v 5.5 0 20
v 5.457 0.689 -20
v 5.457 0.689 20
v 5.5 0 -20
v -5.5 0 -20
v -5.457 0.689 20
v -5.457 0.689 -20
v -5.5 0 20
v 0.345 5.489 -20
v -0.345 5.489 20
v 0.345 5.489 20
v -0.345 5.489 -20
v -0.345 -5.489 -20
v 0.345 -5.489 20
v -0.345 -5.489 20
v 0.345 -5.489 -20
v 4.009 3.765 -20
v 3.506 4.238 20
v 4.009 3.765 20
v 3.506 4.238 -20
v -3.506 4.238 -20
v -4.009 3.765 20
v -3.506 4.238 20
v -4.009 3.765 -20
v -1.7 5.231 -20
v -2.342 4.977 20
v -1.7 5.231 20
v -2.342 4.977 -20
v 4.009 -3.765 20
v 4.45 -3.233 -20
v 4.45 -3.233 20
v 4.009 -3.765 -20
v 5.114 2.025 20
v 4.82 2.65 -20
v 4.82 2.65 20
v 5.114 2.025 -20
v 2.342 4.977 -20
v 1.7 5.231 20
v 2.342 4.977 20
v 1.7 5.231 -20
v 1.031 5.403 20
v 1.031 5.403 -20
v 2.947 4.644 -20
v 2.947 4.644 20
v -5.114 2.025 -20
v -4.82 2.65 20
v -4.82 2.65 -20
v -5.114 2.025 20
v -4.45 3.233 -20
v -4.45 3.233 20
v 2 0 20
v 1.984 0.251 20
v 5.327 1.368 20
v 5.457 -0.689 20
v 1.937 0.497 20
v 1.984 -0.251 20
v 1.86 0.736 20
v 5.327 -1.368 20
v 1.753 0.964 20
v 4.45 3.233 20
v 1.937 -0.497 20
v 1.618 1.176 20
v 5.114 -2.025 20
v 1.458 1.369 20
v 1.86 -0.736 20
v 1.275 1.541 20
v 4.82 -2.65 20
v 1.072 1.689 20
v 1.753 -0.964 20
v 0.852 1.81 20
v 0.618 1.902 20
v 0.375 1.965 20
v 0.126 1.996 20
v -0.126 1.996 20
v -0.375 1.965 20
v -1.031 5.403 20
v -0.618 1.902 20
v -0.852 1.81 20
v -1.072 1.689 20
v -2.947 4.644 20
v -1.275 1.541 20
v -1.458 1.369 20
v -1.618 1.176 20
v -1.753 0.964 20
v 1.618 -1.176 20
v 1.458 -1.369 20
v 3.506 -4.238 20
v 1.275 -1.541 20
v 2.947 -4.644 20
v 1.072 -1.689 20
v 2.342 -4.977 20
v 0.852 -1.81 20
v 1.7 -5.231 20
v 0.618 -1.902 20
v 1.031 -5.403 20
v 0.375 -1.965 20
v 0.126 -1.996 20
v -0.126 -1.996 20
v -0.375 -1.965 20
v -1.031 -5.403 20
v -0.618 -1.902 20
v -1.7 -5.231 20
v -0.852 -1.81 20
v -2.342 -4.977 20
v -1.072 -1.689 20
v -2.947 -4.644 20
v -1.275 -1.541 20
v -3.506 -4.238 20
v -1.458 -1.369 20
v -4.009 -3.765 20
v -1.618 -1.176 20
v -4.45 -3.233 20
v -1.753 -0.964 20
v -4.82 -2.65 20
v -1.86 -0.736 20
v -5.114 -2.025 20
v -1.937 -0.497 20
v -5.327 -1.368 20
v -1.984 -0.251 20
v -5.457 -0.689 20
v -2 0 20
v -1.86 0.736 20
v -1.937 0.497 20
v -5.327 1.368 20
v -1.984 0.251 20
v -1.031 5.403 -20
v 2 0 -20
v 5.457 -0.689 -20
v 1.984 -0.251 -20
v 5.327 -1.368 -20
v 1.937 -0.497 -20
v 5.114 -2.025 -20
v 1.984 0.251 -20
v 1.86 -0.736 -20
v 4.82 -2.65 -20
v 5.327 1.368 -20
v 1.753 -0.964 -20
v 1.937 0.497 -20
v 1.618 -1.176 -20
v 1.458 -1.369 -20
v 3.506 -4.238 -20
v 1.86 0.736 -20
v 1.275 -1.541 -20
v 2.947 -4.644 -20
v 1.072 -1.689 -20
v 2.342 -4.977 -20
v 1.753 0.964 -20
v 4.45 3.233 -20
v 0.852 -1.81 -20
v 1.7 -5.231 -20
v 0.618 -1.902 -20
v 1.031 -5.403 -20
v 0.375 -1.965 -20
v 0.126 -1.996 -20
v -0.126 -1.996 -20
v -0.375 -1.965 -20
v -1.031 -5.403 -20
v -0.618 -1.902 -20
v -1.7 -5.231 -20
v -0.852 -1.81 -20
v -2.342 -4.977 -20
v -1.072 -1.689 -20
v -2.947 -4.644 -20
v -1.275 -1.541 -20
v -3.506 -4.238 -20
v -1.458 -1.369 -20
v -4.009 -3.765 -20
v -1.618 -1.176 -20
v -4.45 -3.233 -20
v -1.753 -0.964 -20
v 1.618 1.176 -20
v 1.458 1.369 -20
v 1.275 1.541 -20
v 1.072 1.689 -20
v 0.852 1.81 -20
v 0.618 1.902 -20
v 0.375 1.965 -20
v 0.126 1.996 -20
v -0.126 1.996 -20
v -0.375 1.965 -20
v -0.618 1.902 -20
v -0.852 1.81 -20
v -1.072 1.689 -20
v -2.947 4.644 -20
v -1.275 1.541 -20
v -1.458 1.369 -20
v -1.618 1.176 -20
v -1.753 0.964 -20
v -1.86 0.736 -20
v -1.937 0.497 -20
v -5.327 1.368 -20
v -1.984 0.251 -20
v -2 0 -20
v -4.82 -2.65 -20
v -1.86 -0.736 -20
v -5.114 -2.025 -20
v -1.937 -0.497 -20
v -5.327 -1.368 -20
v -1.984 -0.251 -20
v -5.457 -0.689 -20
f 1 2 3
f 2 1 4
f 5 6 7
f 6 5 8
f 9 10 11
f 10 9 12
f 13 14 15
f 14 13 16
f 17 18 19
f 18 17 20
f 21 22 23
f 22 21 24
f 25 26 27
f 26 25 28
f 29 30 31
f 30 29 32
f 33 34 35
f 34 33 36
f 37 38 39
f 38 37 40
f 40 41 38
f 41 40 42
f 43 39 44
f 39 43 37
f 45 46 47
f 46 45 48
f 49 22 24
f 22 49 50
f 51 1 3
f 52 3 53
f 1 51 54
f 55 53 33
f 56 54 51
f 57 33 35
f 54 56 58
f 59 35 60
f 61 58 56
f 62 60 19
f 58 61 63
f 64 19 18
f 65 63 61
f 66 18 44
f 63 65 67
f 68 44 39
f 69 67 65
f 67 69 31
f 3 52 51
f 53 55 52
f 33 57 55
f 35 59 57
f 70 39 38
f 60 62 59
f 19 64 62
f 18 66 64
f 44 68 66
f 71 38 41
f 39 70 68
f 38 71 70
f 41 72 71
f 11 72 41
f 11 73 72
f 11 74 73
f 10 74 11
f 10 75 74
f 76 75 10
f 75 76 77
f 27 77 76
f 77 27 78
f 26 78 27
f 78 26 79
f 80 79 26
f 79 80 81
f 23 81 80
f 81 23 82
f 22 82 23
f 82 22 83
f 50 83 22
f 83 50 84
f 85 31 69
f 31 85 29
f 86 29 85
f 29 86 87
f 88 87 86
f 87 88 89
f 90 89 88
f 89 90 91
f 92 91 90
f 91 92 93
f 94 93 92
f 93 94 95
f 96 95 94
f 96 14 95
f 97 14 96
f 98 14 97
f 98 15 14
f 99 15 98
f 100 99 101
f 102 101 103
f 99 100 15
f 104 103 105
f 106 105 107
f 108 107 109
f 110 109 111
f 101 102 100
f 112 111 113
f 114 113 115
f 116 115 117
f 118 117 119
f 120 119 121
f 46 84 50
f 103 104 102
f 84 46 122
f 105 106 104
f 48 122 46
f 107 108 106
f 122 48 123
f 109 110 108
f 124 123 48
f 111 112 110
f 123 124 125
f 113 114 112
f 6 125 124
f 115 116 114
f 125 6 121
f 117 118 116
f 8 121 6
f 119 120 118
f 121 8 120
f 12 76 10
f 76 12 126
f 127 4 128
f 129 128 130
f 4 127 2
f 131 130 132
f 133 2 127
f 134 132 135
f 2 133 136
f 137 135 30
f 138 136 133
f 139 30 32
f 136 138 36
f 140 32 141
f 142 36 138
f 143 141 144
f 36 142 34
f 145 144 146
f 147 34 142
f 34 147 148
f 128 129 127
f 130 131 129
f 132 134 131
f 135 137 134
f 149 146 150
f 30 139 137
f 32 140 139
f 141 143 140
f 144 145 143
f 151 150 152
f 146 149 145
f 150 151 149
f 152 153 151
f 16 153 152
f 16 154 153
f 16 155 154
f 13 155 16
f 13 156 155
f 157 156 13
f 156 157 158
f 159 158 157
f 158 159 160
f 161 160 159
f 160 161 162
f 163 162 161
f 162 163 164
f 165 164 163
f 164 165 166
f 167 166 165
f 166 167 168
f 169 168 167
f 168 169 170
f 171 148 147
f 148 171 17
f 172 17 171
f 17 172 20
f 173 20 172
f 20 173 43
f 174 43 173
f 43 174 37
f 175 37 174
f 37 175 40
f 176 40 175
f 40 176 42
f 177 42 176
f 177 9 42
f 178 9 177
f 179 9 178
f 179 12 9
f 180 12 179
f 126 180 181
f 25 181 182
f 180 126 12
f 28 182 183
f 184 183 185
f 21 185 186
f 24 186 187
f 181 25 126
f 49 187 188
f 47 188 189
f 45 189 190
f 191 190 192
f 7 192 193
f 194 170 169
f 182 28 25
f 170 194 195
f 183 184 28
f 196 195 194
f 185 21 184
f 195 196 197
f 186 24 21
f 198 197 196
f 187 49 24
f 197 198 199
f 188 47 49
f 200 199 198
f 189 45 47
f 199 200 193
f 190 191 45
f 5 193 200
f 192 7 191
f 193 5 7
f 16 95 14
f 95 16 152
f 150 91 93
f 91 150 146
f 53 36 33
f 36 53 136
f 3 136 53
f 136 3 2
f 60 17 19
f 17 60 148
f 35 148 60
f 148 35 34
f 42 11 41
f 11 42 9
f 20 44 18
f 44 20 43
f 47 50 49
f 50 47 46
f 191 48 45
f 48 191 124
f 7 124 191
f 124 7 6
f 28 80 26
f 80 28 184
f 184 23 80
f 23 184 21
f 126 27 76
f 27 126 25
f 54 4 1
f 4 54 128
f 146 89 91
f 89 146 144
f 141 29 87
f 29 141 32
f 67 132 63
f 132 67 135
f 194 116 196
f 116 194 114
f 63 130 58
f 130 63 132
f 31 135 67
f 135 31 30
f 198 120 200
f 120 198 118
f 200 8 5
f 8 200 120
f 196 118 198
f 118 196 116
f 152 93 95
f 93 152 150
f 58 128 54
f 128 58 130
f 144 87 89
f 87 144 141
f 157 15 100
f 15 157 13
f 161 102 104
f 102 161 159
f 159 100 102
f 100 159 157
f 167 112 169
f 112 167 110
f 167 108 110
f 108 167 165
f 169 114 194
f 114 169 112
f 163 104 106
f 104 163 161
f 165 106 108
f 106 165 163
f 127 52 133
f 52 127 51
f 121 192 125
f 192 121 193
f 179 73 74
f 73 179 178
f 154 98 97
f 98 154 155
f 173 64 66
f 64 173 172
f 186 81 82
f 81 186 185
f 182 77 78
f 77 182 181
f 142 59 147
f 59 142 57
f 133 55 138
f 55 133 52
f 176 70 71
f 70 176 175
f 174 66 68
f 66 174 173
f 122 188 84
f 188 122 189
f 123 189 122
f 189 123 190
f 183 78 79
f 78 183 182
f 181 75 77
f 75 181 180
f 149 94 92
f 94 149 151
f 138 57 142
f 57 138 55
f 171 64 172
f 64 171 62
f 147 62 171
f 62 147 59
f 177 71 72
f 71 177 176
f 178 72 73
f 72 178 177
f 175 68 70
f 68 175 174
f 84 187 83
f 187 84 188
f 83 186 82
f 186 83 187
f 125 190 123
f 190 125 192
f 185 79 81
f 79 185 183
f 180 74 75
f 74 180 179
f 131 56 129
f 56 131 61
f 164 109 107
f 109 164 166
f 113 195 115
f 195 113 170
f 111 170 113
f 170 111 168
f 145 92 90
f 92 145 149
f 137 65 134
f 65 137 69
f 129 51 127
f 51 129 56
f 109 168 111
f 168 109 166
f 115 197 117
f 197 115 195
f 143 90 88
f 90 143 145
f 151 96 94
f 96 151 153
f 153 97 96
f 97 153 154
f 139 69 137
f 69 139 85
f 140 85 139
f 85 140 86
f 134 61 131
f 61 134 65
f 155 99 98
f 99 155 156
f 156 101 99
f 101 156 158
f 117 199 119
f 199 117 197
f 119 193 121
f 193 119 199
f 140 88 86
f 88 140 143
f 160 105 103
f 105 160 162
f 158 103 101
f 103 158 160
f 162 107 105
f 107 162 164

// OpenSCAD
$fn = 50;


difference() {
	union() {
		translate(v = [0, 0, -20.0000000000]) {
			cylinder(h = 40, r = 5.5000000000);
		}
	}
	union() {
		translate(v = [0, 0, -100.0000000000]) {
			cylinder(h = 200, r = 2);
		}
	}
}
